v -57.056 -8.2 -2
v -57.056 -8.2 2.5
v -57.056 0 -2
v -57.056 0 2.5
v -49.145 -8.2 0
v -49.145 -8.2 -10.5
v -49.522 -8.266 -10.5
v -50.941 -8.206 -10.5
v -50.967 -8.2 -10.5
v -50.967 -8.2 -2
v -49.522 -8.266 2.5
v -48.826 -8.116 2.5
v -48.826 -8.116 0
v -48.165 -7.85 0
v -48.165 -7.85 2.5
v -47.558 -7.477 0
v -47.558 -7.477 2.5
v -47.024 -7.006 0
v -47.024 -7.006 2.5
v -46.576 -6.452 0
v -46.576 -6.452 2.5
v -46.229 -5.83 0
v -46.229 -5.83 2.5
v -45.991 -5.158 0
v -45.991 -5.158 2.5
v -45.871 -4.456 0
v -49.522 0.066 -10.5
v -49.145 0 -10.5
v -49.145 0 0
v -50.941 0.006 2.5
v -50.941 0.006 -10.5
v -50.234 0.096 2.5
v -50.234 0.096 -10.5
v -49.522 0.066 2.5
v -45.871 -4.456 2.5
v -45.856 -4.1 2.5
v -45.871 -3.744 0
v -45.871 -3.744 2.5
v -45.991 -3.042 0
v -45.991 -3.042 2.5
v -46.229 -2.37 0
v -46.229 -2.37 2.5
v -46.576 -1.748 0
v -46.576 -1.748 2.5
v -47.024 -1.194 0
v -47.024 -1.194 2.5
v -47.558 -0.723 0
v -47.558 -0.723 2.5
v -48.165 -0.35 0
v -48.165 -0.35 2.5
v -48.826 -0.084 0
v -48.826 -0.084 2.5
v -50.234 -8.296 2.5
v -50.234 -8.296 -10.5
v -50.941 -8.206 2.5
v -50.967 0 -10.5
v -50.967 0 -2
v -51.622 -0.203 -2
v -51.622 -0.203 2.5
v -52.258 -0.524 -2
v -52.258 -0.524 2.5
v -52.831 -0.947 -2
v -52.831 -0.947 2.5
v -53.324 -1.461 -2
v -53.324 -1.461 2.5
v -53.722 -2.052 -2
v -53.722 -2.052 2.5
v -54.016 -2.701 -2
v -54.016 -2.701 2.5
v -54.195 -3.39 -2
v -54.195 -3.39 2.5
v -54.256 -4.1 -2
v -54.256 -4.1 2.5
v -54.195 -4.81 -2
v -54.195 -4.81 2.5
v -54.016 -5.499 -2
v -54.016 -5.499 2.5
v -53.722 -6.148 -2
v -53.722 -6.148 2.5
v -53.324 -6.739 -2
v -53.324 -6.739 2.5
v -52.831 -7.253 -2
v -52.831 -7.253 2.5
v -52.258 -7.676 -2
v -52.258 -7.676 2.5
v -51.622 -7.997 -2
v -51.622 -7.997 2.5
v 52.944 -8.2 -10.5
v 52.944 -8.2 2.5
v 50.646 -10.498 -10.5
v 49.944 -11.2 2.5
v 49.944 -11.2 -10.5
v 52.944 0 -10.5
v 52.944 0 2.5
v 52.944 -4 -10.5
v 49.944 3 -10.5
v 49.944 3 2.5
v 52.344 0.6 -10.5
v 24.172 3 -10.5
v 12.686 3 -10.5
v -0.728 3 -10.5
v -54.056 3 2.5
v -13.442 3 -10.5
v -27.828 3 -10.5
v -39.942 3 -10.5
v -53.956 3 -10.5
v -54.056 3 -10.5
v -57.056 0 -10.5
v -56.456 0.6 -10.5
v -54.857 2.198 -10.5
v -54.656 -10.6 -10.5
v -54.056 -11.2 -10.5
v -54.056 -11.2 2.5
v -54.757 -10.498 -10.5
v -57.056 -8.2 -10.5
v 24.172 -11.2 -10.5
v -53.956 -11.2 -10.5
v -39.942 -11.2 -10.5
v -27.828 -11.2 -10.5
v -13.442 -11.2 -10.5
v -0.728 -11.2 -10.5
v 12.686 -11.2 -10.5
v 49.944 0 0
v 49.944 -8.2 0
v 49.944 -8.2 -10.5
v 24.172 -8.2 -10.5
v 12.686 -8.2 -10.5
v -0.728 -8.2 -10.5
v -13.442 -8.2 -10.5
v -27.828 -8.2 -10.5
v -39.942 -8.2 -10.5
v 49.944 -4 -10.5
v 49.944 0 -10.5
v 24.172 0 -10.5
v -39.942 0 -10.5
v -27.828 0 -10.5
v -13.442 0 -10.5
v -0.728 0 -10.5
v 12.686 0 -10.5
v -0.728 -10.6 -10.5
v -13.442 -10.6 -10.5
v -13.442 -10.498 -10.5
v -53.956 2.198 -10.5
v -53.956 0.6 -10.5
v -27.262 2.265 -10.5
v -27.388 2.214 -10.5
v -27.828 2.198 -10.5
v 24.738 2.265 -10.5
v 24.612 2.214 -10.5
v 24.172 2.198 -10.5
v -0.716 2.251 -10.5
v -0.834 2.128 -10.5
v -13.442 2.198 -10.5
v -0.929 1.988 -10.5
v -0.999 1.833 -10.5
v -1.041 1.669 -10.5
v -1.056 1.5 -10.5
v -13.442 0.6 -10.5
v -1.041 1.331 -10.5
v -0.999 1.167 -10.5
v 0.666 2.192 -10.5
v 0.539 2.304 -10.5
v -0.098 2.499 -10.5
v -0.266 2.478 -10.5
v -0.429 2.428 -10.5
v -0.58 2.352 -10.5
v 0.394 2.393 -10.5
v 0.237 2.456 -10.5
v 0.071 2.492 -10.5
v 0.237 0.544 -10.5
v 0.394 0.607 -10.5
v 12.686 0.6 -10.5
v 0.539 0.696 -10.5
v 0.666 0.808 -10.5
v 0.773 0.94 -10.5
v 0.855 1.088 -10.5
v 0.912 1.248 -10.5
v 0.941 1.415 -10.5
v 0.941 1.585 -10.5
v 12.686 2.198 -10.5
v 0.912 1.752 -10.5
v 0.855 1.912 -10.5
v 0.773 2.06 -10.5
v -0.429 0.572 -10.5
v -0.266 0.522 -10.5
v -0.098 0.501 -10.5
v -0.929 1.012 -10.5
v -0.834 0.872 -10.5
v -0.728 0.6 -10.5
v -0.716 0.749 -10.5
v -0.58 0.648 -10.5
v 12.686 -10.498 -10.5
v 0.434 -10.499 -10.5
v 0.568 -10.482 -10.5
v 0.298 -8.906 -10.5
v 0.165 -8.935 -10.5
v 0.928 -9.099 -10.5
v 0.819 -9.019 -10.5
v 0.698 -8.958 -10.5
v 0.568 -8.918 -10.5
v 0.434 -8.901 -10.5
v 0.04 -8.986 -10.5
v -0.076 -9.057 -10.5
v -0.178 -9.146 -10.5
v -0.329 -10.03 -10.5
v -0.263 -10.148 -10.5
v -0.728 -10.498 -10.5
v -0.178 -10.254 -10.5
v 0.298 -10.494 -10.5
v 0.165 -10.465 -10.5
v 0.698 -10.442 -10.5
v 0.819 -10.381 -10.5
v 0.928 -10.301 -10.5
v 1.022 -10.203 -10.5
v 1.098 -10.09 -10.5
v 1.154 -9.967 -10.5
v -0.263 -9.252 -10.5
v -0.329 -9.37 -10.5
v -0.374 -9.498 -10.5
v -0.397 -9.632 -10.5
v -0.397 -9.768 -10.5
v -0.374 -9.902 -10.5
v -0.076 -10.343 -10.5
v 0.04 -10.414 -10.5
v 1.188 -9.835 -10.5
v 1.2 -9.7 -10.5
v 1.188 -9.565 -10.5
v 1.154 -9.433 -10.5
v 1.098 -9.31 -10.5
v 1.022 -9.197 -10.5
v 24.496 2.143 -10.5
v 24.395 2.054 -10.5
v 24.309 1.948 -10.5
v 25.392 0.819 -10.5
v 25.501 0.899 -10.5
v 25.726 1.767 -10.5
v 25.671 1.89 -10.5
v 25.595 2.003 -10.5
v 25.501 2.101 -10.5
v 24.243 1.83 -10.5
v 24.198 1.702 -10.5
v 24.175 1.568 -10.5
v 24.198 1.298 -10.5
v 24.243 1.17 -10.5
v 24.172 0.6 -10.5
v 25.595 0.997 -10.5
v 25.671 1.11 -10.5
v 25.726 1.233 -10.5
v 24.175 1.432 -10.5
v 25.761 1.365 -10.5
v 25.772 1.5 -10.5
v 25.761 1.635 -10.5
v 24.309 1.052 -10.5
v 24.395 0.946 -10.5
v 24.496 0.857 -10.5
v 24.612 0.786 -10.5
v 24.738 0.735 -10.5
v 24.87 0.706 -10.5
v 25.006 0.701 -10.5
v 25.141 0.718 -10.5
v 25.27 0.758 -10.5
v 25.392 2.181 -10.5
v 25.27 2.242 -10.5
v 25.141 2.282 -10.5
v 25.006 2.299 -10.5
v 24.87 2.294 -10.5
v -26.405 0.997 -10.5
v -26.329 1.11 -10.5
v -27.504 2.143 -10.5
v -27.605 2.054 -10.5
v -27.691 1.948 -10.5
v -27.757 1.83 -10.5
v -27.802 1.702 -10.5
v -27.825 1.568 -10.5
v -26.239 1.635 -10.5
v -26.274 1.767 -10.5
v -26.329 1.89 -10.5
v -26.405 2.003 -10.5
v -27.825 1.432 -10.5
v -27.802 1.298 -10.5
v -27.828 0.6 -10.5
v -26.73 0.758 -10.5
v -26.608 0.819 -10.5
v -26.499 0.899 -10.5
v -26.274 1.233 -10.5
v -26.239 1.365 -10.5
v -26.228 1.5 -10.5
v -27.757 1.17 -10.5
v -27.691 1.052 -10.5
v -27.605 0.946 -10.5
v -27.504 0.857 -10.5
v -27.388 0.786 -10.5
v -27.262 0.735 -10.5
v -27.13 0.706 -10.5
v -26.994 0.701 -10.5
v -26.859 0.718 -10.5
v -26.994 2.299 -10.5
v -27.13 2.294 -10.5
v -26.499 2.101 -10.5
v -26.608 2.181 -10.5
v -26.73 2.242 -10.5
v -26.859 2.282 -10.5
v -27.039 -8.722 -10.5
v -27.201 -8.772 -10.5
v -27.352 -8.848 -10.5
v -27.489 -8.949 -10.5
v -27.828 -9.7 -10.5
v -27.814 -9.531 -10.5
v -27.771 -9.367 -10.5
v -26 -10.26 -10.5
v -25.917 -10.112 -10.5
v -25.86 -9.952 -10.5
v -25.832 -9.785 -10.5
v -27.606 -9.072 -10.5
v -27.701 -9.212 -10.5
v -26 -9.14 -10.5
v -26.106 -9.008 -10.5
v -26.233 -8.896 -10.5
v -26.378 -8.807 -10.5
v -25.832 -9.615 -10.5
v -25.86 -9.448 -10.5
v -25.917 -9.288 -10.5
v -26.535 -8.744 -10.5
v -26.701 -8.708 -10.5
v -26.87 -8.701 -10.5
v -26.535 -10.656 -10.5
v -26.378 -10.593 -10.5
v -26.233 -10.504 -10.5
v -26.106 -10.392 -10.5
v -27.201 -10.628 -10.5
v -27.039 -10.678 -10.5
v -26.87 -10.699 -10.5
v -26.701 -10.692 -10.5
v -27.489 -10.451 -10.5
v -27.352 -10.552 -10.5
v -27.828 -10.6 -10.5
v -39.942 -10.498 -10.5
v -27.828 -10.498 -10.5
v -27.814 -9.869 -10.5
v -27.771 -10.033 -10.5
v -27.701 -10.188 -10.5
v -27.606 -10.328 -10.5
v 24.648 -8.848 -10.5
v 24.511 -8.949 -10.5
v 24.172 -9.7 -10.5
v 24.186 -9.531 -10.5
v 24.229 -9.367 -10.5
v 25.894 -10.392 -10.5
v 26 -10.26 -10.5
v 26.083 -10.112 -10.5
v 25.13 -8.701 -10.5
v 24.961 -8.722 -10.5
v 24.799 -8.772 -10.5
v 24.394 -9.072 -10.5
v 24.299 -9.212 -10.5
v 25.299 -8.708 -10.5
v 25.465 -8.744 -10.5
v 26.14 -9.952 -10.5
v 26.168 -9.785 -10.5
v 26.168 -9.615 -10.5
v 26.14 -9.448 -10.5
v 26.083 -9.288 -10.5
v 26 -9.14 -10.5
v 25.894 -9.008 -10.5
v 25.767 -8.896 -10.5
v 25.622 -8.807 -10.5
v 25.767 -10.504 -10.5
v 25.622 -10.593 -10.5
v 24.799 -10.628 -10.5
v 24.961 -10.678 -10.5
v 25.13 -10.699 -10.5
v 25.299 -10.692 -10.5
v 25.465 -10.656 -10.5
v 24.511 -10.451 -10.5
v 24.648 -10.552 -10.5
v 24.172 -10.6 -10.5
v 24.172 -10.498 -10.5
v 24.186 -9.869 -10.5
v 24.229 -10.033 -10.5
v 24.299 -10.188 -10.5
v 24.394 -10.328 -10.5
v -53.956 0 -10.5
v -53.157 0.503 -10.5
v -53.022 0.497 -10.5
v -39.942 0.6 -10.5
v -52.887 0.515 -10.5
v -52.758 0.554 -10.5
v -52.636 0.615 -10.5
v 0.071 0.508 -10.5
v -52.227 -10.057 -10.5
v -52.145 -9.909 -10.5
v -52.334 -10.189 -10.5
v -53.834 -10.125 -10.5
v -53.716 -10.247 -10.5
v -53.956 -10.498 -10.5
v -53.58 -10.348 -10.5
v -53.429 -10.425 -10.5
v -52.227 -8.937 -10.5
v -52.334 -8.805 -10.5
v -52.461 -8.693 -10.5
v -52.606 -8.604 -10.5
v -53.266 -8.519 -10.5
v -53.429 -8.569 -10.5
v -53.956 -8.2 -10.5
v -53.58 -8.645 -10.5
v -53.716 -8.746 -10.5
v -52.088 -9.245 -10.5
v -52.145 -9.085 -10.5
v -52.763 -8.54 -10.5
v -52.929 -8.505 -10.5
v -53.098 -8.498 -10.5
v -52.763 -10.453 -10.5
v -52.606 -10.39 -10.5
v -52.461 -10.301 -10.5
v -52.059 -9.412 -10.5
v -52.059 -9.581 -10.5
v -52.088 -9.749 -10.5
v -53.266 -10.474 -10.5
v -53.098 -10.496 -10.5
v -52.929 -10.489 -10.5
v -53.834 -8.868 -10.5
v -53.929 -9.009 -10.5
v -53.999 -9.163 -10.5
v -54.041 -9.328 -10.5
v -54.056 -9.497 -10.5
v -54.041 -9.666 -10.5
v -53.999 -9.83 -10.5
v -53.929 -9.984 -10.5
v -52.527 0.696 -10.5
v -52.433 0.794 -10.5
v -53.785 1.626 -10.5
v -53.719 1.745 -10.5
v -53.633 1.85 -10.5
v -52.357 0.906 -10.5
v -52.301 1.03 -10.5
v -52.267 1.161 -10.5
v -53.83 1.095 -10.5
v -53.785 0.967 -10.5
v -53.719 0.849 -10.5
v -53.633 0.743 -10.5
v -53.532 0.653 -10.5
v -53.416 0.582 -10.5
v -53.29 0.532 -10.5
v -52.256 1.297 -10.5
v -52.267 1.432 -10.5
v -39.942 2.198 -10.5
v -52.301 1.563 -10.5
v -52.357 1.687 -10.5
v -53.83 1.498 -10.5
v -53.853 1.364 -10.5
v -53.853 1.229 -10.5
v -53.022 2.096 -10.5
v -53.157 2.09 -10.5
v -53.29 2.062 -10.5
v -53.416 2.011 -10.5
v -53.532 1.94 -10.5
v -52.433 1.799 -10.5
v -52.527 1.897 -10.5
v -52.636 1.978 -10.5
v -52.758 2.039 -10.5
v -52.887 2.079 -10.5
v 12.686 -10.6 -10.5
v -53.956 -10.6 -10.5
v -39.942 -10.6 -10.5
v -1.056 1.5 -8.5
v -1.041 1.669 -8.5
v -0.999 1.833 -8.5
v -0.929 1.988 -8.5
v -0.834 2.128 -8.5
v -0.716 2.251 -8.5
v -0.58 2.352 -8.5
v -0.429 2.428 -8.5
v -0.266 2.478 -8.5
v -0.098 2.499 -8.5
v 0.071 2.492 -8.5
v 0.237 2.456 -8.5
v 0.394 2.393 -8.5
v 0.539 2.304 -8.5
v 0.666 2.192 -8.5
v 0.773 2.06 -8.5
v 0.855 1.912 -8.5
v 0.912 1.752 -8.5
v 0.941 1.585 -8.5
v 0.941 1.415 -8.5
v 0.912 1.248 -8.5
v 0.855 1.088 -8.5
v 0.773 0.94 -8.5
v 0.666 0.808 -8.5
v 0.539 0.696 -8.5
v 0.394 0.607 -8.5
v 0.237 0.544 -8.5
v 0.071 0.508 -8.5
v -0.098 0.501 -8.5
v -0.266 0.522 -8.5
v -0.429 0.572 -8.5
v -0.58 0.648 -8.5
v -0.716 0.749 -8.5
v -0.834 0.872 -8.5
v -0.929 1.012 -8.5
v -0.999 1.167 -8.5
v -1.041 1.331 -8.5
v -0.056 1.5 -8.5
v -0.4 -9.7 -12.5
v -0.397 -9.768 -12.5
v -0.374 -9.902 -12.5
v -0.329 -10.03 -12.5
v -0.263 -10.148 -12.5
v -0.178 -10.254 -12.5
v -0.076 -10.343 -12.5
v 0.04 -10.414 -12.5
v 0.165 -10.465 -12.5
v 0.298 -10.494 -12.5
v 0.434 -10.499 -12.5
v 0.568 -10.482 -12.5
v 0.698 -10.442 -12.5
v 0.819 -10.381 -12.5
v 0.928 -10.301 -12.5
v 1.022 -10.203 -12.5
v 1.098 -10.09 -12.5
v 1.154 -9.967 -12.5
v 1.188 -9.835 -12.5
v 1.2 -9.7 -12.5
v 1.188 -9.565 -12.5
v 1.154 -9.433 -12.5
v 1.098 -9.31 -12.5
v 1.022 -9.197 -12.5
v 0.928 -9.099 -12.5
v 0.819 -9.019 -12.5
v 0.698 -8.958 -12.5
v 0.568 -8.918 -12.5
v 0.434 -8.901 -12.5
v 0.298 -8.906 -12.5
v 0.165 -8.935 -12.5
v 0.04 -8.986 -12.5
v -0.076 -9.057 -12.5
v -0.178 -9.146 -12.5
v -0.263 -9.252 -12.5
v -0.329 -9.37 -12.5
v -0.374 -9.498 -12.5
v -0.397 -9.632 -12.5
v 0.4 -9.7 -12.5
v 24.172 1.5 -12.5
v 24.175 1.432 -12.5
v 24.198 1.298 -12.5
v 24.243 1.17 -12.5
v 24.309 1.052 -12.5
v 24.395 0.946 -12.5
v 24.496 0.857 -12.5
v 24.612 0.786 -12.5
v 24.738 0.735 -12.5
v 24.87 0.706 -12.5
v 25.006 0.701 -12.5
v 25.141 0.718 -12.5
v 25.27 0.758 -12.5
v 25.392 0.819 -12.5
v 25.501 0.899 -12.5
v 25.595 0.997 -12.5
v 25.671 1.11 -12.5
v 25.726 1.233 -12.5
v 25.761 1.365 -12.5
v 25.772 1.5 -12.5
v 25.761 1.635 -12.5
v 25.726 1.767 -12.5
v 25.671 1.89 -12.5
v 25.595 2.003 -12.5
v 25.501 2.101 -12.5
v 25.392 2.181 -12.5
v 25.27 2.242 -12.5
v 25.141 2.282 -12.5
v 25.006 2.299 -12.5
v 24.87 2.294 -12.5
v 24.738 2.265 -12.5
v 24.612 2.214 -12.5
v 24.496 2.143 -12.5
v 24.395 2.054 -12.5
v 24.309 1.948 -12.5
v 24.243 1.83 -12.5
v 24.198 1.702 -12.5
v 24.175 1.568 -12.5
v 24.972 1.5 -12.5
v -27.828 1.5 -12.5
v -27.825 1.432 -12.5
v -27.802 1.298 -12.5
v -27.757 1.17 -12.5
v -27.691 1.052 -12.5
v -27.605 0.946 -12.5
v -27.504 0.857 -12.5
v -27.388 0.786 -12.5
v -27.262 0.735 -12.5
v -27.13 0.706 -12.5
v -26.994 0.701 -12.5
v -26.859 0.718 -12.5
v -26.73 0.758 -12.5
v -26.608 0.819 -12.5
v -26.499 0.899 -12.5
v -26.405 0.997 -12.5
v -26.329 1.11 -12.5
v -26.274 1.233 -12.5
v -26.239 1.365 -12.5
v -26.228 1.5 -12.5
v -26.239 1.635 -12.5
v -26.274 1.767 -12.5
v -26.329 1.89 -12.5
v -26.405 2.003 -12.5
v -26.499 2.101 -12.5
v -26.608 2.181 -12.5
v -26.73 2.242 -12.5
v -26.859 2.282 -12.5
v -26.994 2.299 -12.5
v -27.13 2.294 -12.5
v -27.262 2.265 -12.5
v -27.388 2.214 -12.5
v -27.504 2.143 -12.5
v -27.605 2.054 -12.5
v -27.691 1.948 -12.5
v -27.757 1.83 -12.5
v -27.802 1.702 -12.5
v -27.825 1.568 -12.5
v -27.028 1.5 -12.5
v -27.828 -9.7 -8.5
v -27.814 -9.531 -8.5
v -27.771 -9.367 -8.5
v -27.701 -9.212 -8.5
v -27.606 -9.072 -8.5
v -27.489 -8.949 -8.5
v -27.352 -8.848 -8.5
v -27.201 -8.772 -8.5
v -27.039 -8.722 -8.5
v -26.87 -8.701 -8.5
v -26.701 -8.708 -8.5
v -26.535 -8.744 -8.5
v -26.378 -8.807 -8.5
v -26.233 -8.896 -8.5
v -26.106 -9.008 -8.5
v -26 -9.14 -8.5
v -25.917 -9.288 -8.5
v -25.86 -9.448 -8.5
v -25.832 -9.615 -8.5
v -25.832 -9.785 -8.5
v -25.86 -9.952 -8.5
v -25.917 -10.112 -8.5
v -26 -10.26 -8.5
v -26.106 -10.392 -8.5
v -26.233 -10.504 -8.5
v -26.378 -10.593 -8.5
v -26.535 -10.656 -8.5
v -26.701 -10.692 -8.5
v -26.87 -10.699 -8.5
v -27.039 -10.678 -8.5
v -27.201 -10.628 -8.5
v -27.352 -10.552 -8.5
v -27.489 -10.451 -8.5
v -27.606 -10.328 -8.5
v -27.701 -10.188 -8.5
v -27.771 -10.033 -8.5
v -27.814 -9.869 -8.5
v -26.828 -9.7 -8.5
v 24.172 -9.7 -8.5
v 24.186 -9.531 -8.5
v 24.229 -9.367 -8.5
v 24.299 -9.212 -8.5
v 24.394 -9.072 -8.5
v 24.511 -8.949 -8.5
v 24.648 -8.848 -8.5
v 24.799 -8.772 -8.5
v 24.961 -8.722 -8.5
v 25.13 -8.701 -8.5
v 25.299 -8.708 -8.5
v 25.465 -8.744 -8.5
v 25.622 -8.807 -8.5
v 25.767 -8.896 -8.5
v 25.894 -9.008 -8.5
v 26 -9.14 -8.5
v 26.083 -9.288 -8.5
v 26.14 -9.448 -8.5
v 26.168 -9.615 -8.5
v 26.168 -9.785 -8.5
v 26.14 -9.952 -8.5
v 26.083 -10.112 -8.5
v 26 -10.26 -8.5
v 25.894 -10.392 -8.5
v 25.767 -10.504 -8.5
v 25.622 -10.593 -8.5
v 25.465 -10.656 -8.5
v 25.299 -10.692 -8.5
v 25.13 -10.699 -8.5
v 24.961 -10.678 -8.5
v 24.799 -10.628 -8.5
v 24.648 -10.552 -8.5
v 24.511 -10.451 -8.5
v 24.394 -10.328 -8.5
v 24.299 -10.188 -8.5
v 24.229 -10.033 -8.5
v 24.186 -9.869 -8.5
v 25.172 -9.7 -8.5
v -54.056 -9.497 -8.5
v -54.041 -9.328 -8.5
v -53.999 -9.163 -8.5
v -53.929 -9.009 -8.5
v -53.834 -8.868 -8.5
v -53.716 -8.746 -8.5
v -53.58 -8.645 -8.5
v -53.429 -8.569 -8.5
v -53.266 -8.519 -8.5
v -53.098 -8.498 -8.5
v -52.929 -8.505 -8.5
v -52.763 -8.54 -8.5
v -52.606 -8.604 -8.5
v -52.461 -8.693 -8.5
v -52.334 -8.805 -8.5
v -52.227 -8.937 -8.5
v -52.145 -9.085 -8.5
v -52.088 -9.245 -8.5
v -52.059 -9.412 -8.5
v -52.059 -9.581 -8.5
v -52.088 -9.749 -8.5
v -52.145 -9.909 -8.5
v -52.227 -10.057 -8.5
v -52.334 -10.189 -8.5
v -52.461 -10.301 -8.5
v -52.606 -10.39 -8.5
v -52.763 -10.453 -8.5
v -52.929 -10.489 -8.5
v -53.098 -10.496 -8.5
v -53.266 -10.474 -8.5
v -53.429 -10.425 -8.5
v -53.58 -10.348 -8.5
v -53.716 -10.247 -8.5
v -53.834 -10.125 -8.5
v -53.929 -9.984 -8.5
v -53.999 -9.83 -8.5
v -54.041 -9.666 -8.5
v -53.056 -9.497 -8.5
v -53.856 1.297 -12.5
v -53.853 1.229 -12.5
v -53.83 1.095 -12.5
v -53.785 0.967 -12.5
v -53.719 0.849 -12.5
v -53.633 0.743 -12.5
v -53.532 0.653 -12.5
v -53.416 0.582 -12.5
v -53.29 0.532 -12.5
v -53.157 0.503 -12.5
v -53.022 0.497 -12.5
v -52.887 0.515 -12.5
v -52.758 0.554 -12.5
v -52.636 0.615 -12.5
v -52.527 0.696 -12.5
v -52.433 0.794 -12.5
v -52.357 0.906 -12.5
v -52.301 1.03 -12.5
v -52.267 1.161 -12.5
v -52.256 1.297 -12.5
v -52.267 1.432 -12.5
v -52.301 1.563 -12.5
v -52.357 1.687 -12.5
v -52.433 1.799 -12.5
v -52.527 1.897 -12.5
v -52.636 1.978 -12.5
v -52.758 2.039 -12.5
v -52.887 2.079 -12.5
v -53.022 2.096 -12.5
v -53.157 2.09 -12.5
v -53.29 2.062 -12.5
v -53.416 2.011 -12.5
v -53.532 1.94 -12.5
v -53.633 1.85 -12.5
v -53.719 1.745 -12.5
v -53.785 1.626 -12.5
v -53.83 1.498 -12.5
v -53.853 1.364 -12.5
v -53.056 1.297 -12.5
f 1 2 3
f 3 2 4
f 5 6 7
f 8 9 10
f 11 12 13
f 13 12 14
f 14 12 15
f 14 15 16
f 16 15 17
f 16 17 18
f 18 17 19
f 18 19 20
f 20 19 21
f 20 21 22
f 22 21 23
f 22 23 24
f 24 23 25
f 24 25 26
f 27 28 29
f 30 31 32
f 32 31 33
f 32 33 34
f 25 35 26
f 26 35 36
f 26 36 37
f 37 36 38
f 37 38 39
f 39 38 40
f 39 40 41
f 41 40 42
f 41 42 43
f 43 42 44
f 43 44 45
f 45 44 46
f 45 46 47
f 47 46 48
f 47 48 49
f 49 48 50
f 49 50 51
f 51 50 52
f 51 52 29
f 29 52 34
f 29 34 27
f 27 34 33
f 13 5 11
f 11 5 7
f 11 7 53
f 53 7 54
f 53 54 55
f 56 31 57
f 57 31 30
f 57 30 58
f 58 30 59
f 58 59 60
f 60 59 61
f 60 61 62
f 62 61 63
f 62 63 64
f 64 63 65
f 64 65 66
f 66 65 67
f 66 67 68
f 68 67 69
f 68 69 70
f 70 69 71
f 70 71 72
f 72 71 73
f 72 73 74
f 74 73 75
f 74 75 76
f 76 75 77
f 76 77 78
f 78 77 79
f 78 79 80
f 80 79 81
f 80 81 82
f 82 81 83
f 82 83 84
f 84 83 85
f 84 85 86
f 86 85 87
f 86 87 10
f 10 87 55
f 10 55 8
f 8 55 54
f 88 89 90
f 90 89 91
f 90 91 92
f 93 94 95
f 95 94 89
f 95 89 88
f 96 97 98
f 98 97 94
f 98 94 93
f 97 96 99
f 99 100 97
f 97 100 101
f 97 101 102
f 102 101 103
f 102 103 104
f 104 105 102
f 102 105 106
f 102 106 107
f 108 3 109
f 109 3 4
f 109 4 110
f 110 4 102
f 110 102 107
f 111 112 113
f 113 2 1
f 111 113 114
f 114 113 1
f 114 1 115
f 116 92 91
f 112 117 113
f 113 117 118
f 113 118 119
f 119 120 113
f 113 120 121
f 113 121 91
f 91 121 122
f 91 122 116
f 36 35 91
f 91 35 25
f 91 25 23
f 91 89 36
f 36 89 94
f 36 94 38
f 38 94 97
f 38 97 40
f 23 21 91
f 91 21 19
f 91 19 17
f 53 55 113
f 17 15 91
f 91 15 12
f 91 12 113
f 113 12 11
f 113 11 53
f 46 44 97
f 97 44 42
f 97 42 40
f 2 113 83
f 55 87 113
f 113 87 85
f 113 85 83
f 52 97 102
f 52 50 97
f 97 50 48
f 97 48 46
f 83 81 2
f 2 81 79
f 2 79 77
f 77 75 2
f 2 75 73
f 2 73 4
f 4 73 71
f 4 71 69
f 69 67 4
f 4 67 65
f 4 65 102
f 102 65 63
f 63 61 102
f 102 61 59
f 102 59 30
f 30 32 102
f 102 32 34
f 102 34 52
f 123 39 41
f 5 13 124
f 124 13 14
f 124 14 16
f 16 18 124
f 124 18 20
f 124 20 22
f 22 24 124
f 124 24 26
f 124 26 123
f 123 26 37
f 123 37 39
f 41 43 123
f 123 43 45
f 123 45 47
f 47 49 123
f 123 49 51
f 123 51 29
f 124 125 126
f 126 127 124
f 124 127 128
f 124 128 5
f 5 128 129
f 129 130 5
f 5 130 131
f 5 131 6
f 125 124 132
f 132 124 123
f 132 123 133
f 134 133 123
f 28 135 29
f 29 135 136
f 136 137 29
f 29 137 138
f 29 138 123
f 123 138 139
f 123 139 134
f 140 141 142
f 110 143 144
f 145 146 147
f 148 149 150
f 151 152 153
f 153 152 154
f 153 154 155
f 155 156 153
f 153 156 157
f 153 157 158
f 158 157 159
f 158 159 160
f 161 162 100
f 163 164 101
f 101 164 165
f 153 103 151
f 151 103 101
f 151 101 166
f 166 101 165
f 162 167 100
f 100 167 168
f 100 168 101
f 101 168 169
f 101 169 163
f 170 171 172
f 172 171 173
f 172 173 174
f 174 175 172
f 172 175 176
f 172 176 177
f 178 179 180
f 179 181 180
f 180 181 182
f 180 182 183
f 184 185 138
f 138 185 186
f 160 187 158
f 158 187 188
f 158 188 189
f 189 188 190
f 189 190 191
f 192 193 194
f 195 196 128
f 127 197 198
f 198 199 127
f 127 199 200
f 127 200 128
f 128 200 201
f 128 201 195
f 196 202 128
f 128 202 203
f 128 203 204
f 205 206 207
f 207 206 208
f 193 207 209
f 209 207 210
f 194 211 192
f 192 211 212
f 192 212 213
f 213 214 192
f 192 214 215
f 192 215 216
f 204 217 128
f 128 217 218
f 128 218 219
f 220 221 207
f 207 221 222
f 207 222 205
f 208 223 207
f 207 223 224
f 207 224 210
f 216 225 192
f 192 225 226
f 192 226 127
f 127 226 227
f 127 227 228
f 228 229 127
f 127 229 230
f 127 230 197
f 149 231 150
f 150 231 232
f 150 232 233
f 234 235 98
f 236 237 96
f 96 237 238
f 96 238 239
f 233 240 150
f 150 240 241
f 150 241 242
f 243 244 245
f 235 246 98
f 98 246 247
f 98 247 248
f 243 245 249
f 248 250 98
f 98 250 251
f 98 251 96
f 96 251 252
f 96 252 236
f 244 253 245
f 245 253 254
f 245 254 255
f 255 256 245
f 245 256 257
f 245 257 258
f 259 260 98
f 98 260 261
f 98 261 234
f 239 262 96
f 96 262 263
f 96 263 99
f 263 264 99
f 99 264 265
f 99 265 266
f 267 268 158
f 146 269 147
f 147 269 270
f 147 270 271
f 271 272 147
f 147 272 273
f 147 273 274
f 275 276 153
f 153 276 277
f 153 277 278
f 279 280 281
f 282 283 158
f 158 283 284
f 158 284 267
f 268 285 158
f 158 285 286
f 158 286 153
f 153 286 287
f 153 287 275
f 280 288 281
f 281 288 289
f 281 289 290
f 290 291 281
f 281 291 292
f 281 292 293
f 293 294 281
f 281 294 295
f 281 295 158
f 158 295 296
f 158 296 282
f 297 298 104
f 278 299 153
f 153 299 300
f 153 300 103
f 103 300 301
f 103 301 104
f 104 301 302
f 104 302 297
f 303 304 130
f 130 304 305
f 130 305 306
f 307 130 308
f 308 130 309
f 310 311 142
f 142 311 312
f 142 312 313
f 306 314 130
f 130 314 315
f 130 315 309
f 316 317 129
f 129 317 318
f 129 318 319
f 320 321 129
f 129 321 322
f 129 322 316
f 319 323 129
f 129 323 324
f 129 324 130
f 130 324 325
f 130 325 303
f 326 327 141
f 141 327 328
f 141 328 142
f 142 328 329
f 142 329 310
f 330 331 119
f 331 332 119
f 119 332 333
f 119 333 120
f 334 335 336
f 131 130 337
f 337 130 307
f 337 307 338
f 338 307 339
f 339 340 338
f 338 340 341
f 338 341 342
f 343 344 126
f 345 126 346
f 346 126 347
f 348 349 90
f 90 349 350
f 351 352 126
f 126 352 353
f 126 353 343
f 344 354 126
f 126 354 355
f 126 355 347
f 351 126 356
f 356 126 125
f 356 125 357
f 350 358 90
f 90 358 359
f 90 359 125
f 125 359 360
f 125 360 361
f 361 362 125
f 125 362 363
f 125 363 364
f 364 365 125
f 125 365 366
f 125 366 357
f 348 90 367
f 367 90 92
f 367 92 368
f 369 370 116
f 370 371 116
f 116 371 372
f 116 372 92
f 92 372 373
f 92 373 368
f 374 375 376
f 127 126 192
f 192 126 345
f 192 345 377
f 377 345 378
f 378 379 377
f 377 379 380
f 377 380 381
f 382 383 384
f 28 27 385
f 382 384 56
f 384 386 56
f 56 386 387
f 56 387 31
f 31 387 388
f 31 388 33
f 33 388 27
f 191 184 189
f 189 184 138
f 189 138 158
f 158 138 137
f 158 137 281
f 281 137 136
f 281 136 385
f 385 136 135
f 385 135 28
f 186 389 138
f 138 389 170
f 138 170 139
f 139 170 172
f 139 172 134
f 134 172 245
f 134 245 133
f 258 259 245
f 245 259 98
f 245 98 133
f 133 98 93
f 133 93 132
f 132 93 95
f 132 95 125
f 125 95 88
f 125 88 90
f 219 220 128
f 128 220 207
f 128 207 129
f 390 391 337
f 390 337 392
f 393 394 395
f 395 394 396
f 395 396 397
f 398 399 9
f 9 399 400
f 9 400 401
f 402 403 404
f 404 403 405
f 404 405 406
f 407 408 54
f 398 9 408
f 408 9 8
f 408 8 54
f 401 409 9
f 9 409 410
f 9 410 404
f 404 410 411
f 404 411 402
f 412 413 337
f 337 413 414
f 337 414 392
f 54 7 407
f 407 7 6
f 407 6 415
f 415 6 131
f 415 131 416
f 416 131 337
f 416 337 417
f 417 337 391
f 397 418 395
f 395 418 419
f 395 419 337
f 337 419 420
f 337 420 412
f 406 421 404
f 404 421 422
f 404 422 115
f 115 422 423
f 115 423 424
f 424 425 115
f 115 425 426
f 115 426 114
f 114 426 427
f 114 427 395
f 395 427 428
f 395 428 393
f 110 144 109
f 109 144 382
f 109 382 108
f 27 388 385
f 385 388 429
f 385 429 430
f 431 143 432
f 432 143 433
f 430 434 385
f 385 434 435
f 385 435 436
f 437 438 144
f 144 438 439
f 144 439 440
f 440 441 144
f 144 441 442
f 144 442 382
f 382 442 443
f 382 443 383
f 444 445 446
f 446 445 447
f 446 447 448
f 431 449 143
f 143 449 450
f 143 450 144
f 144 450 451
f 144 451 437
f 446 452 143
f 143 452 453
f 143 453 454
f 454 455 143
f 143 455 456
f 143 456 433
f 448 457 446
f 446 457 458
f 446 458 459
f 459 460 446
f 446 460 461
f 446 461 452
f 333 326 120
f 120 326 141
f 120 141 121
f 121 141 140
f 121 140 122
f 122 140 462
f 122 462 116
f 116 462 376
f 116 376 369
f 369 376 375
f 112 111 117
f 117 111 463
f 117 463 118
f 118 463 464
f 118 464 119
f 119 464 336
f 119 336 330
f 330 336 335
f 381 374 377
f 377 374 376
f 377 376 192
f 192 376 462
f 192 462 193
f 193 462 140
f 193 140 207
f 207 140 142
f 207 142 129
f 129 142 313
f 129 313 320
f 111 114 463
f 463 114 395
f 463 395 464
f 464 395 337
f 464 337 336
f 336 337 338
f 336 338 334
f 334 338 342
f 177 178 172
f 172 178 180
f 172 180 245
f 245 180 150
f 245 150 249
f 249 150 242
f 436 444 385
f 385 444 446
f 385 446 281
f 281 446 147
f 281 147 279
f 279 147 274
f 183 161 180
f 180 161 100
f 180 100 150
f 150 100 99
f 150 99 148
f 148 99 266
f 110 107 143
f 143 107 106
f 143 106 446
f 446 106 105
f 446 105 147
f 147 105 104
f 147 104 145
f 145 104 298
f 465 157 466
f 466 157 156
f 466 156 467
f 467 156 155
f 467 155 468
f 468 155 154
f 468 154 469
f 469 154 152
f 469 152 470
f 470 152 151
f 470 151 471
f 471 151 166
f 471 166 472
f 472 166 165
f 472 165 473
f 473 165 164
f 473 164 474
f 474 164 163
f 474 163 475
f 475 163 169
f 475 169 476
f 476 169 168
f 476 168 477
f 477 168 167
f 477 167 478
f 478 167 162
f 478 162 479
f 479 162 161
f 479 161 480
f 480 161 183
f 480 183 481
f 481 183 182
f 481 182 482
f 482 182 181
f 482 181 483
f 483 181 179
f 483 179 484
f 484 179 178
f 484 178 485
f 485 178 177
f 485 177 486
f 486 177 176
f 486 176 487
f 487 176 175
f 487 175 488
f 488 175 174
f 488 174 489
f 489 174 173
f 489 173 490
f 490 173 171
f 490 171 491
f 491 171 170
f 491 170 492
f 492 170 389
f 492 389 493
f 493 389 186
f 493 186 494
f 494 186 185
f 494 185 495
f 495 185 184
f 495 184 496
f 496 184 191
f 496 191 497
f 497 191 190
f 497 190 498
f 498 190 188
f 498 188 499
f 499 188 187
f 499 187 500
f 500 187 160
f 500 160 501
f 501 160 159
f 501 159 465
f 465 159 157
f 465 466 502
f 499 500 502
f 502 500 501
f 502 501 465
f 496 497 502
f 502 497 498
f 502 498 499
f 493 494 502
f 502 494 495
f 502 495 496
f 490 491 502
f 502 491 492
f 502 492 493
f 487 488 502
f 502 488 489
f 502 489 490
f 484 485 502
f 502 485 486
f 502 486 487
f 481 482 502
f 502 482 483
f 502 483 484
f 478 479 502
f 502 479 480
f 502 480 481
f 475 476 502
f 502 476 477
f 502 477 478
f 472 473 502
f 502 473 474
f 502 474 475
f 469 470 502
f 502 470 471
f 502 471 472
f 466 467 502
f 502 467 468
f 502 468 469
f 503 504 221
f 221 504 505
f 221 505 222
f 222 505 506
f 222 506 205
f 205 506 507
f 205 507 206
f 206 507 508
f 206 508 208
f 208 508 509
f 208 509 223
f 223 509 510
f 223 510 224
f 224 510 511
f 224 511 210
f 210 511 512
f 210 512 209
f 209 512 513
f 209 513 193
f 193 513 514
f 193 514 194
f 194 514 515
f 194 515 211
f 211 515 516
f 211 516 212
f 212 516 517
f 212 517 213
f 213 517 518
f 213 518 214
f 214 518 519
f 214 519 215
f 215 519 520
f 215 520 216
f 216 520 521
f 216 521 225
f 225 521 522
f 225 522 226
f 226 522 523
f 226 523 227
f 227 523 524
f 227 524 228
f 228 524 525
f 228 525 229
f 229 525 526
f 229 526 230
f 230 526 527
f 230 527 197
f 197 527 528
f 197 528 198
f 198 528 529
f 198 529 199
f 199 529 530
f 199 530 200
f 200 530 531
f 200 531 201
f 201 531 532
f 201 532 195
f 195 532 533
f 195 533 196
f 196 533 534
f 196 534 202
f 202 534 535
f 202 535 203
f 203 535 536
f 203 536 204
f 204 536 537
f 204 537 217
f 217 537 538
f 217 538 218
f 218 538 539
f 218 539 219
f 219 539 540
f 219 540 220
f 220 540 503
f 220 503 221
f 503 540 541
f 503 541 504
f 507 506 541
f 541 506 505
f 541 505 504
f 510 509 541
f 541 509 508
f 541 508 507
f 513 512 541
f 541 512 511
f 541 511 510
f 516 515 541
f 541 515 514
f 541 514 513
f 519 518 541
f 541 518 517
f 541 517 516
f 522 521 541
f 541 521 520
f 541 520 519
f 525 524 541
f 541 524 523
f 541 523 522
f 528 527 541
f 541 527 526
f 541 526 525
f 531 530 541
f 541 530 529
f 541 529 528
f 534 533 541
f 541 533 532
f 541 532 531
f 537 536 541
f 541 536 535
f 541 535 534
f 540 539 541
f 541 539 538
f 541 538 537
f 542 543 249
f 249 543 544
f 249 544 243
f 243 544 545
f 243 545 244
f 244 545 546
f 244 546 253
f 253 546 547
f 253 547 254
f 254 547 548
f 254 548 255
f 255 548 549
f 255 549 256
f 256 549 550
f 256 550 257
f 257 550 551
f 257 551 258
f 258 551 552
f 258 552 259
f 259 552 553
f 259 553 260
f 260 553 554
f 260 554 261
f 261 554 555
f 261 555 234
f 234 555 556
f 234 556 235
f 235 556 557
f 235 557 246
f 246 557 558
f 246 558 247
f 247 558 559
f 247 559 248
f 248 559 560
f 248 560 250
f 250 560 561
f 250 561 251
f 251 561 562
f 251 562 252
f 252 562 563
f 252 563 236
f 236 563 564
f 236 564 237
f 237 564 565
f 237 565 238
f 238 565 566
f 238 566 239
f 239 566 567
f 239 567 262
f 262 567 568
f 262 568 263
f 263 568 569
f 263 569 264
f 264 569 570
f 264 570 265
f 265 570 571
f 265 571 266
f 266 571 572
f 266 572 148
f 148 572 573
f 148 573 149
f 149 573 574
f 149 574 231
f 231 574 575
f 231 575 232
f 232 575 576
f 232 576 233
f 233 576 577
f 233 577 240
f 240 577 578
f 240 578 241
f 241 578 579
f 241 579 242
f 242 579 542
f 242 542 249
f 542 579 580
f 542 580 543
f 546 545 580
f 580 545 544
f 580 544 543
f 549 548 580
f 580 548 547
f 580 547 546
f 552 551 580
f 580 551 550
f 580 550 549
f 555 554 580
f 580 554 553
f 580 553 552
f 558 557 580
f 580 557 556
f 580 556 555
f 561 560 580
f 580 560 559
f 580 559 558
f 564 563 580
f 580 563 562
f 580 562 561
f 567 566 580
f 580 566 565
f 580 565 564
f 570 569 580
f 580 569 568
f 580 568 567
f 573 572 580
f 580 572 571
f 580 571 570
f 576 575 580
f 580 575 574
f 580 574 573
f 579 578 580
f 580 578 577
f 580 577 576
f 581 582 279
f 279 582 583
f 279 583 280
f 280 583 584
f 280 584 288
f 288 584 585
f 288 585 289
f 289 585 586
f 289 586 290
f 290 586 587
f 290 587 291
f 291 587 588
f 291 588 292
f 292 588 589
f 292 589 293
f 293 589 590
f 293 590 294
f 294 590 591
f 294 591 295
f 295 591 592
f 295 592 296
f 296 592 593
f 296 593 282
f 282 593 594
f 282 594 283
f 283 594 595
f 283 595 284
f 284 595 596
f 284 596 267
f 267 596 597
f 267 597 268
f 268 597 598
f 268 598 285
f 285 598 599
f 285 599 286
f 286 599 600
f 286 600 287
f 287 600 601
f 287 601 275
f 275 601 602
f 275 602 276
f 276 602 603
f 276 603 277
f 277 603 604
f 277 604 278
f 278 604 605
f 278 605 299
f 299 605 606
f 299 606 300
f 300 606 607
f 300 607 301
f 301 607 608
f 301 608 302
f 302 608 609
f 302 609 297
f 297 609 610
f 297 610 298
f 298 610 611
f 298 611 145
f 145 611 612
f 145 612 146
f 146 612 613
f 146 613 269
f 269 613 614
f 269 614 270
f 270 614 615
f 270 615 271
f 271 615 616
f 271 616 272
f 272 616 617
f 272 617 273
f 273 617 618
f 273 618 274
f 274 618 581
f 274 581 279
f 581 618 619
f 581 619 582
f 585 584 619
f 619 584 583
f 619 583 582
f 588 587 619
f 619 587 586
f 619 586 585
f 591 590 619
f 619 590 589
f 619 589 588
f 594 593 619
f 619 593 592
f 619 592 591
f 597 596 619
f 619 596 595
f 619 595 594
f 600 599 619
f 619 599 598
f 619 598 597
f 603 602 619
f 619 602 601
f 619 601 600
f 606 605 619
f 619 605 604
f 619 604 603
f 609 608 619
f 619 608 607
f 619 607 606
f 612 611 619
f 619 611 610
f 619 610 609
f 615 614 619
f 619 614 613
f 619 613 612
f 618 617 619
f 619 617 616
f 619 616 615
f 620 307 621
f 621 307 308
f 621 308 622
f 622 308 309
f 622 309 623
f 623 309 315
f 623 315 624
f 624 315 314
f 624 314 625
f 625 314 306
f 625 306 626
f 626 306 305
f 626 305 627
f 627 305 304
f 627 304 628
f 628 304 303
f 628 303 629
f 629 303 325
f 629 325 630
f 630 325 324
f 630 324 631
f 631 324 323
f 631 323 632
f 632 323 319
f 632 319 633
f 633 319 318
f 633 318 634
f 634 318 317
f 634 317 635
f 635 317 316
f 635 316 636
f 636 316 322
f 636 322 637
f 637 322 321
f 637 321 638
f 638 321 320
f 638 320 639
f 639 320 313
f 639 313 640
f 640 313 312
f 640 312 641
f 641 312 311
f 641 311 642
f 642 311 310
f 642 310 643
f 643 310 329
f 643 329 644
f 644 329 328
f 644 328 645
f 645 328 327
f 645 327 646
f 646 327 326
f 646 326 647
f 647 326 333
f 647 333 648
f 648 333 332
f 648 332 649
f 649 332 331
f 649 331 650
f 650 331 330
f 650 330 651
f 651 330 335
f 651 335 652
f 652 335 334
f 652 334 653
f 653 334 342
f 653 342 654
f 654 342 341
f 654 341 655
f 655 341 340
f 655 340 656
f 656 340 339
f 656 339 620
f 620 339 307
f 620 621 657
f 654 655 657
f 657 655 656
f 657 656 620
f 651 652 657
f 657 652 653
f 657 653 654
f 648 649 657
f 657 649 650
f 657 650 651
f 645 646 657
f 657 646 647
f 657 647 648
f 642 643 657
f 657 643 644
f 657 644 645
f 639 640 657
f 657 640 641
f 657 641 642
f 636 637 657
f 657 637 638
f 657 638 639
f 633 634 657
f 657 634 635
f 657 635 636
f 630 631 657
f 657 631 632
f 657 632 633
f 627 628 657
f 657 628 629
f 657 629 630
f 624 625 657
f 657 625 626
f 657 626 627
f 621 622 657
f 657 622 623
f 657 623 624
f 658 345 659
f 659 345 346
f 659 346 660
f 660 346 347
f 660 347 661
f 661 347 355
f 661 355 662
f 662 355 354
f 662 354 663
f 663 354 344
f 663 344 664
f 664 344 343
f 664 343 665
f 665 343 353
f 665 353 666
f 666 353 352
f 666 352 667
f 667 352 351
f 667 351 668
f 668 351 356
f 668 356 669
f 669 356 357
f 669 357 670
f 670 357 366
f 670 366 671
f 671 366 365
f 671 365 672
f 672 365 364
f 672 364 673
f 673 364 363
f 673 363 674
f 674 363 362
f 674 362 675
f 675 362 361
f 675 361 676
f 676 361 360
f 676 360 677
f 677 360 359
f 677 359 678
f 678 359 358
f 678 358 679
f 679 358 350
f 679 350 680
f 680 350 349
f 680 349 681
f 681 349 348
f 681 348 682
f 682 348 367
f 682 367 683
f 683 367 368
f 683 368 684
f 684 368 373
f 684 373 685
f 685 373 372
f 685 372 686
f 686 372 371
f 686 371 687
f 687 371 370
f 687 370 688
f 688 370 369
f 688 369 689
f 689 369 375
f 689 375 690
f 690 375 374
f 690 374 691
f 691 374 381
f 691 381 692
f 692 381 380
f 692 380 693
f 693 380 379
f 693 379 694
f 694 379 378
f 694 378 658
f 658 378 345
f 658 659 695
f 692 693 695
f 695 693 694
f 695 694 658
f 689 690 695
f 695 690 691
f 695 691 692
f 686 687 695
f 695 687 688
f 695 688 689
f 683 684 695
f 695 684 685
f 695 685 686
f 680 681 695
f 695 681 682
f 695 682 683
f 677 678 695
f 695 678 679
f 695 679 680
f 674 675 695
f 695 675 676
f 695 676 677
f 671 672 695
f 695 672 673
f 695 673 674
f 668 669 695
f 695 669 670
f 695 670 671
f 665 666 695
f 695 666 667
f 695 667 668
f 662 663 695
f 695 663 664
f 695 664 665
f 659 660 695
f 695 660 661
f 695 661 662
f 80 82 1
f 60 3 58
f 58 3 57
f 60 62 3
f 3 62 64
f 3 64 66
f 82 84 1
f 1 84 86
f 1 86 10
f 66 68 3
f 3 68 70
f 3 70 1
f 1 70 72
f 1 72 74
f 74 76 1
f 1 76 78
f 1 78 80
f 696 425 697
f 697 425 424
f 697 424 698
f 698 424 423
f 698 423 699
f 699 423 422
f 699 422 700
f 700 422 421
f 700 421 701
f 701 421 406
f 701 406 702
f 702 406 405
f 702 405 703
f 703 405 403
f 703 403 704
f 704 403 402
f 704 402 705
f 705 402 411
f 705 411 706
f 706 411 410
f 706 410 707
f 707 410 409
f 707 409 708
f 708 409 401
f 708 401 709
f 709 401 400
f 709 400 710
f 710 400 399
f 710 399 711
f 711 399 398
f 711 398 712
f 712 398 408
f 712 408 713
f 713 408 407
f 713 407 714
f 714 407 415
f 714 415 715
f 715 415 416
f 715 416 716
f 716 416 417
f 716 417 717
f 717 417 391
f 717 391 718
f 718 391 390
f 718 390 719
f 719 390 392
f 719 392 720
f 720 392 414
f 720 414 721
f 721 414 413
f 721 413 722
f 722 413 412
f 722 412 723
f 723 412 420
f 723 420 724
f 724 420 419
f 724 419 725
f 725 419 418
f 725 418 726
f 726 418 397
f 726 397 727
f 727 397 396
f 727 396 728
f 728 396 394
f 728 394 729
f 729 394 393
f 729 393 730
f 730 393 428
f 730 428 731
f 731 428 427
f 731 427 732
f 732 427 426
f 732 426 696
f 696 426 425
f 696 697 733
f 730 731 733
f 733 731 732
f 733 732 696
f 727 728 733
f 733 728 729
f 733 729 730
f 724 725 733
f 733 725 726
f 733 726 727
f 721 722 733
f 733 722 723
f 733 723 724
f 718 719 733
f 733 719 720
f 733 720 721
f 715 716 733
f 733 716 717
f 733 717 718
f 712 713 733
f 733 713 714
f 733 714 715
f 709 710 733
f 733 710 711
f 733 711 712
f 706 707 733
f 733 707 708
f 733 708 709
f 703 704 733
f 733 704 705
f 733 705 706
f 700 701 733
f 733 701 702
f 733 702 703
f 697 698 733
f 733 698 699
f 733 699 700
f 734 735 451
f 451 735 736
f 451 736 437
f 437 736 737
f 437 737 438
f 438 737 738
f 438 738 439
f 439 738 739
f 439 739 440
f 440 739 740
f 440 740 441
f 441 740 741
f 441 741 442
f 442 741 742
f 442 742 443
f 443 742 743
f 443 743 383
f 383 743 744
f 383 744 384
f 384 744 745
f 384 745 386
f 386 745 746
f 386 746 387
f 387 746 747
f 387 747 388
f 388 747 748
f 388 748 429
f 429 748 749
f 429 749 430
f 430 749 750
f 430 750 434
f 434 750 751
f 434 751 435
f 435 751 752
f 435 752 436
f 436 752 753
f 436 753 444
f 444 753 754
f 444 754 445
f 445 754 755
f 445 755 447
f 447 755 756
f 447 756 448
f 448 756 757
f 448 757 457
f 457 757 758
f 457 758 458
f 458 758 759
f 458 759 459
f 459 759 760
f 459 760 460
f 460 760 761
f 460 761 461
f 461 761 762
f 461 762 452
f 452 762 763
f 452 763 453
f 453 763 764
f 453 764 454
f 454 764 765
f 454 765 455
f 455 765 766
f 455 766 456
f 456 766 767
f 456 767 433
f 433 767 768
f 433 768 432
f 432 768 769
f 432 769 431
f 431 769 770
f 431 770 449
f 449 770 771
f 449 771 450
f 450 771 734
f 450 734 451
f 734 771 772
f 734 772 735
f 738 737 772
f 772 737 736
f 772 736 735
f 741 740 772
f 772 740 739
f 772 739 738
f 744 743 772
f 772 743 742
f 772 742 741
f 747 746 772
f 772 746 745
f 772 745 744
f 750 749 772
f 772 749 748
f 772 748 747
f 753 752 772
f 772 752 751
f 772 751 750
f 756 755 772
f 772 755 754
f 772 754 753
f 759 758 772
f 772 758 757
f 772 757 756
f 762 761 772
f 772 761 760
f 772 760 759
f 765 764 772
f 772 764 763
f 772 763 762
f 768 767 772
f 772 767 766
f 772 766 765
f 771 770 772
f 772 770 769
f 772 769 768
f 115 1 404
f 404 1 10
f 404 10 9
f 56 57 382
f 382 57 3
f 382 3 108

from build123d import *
from build123d.topology import SkipClean

# Parameters (mm, degrees)
SKETCH_4_R          = 4.2
EXTRUDE_5_DEPTH     = 2.5
EXTRUDE_START       = -10.5
EXTRUDE_6_DEPTH     = 10.5
SKETCH_6_R          = 1
CUT_EXTRUDE_2_DEPTH = 2
SKETCH_7_R          = 0.8
EXTRUDE_7_DEPTH     = 2
SKETCH_8_R          = 0.8
EXTRUDE_8_DEPTH     = 2
SKETCH_9_R          = 1
CUT_EXTRUDE_3_DEPTH = 2
CUT_EXTRUDE_6_DEPTH = 5
EXTRUDE_9_DEPTH     = 11
EXTRUDE_10_DEPTH    = 11
EXTRUDE_START_2     = 2
EXTRUDE_11_DEPTH    = 2
SKETCH_18_R         = 1
CUT_EXTRUDE_7_DEPTH = 2
SKETCH_19_R         = 0.8
EXTRUDE_13_DEPTH    = 2
SKETCH_20_W         = 8.5
SKETCH_20_H         = 8.2
CUT_EXTRUDE_8_DEPTH = 10


with BuildPart() as part:
    # 草图4 → 凸台-拉伸5 (new body)
    with BuildSketch(Plane.XY):
        Polygon((52.944203822, -8.2), (52.944203822, 0), (49.944203822, 3), (-54.055796178, 3), (-57.055796178, 0), (-57.055796178, -8.2), (-54.055796178, -11.2), (49.944203822, -11.2), align=None)
        with Locations((-50.055796178, -4.1)):
            Circle(SKETCH_4_R, mode=Mode.SUBTRACT)
    extrude(amount=EXTRUDE_5_DEPTH)

    # 草图4<6> → 凸台-拉伸6 (add)
    with BuildSketch(Plane.XY.offset(EXTRUDE_START)):
        Polygon((52.944203822, -8.2), (52.944203822, 0), (49.944203822, 3), (-54.055796178, 3), (-57.055796178, 0), (-57.055796178, -8.2), (-54.055796178, -11.2), (49.944203822, -11.2), align=None)
        with BuildLine():
            ThreePointArc((-49.14475282, -8.2), (-54.255796178, -4.1), (-49.14475282, 0))
            Line((-49.14475282, 0), (49.944203822, 0))
            Line((49.944203822, 0), (49.944203822, -8.2))
            Line((49.944203822, -8.2), (-49.14475282, -8.2))
        make_face(mode=Mode.SUBTRACT)
    extrude(amount=EXTRUDE_6_DEPTH)

    # 草图6 → 切除-拉伸2 (cut)
    with BuildSketch(Plane(origin=(0, 0, -10.5), x_dir=(-1, 0, 0), z_dir=(0, 0, -1))):
        with Locations((0.055796178, 1.5)):
            Circle(SKETCH_6_R)
    extrude(amount=-CUT_EXTRUDE_2_DEPTH, mode=Mode.SUBTRACT)

    # 草图7 → 凸台-拉伸7 (add)
    with BuildSketch(Plane(origin=(0, 0, -10.5), x_dir=(-1, 0, 0), z_dir=(0, 0, -1))):
        with Locations((-0.399725501, -9.7)):
            Circle(SKETCH_7_R)
    extrude(amount=EXTRUDE_7_DEPTH)

    # 草图8 → 凸台-拉伸8 (add)
    with BuildSketch(Plane(origin=(0, 0, -10.5), x_dir=(-1, 0, 0), z_dir=(0, 0, -1))):
        with Locations((-24.972101911, 1.5)):
            Circle(SKETCH_8_R)
        with Locations((27.027898089, 1.5)):
            Circle(SKETCH_8_R)
    extrude(amount=EXTRUDE_8_DEPTH)

    # 草图9 → 切除-拉伸3 (cut)
    with BuildSketch(Plane(origin=(0, 0, -10.5), x_dir=(-1, 0, 0), z_dir=(0, 0, -1))):
        with Locations((-25.171964661, -9.7)):
            Circle(SKETCH_9_R)
        with Locations((26.828035339, -9.7)):
            Circle(SKETCH_9_R)
    extrude(amount=-CUT_EXTRUDE_3_DEPTH, mode=Mode.SUBTRACT)

    # 草图11 → 切除-拉伸6 (cut)
    with BuildSketch(Plane.ZY.offset(57.055796178)):
        Polygon((0, -8.2), (0, 0), (-10.5, 0), (-10.5, -1.6), (-10.5, -6.6), (-10.5, -8.2), align=None)
    extrude(amount=-CUT_EXTRUDE_6_DEPTH, mode=Mode.SUBTRACT)

    # 草图12 → 凸台-拉伸9 (add)
    with BuildSketch(Plane(origin=(0, 0, -10.5), x_dir=(-1, 0, 0), z_dir=(0, 0, -1))):
        Polygon((52.055796178, -0.406762937), (57.055796178, 0), (52.055796178, 0), align=None)
    extrude(amount=-EXTRUDE_9_DEPTH)

    # 草图13 → 凸台-拉伸10 (add)
    with BuildSketch(Plane(origin=(0, 0, -10.5), x_dir=(-1, 0, 0), z_dir=(0, 0, -1))):
        Polygon((52.055796178, -7.793237063), (52.055796178, -8.2), (57.055796178, -8.2), align=None)
    extrude(amount=-EXTRUDE_10_DEPTH)

    # 草图15 → 凸台-拉伸11 (add)
    with SkipClean():  # the faces are left unmerged after this step: merging them gives an invalid solid
        with BuildSketch(Plane(origin=(0, 0, 0), x_dir=(-1, 0, 0), z_dir=(0, 0, -1)).offset(EXTRUDE_START_2)):
            with BuildLine():
                Line((52.055796178, -0.406762937), (57.055796178, 0))
                Line((57.055796178, 0), (57.055796178, -8.2))
                Line((57.055796178, -8.2), (52.055796178, -7.793237063))
                ThreePointArc((52.055796178, -7.793237063), (54.255796178, -4.1), (52.055796178, -0.406762937))
            make_face()
        extrude(amount=-EXTRUDE_11_DEPTH)

    # 草图18 → 切除-拉伸7 (cut)
    with SkipClean():  # the faces are left unmerged after this step: merging them gives an invalid solid
        with BuildSketch(Plane(origin=(0, 0, -10.5), x_dir=(-1, 0, 0), z_dir=(0, 0, -1))):
            with Locations((53.055796178, -9.496618531)):
                Circle(SKETCH_18_R)
        extrude(amount=-CUT_EXTRUDE_7_DEPTH, mode=Mode.SUBTRACT)

    # 草图19 → 凸台-拉伸13 (add)
    with SkipClean():  # the faces are left unmerged after this step: merging them gives an invalid solid
        with BuildSketch(Plane(origin=(0, 0, -10.5), x_dir=(-1, 0, 0), z_dir=(0, 0, -1))):
            with Locations((53.055796178, 1.296618531)):
                Circle(SKETCH_19_R)
        extrude(amount=EXTRUDE_13_DEPTH)

    # 草图20 → 切除-拉伸8 (cut)
    with SkipClean():  # the faces are left unmerged after this step: merging them gives an invalid solid
        with BuildSketch(Plane.ZY.offset(57.055796178)):
            with Locations((-6.25, -4.1)):
                Rectangle(SKETCH_20_W, SKETCH_20_H)
        extrude(amount=-CUT_EXTRUDE_8_DEPTH, mode=Mode.SUBTRACT)


solid = part.part
